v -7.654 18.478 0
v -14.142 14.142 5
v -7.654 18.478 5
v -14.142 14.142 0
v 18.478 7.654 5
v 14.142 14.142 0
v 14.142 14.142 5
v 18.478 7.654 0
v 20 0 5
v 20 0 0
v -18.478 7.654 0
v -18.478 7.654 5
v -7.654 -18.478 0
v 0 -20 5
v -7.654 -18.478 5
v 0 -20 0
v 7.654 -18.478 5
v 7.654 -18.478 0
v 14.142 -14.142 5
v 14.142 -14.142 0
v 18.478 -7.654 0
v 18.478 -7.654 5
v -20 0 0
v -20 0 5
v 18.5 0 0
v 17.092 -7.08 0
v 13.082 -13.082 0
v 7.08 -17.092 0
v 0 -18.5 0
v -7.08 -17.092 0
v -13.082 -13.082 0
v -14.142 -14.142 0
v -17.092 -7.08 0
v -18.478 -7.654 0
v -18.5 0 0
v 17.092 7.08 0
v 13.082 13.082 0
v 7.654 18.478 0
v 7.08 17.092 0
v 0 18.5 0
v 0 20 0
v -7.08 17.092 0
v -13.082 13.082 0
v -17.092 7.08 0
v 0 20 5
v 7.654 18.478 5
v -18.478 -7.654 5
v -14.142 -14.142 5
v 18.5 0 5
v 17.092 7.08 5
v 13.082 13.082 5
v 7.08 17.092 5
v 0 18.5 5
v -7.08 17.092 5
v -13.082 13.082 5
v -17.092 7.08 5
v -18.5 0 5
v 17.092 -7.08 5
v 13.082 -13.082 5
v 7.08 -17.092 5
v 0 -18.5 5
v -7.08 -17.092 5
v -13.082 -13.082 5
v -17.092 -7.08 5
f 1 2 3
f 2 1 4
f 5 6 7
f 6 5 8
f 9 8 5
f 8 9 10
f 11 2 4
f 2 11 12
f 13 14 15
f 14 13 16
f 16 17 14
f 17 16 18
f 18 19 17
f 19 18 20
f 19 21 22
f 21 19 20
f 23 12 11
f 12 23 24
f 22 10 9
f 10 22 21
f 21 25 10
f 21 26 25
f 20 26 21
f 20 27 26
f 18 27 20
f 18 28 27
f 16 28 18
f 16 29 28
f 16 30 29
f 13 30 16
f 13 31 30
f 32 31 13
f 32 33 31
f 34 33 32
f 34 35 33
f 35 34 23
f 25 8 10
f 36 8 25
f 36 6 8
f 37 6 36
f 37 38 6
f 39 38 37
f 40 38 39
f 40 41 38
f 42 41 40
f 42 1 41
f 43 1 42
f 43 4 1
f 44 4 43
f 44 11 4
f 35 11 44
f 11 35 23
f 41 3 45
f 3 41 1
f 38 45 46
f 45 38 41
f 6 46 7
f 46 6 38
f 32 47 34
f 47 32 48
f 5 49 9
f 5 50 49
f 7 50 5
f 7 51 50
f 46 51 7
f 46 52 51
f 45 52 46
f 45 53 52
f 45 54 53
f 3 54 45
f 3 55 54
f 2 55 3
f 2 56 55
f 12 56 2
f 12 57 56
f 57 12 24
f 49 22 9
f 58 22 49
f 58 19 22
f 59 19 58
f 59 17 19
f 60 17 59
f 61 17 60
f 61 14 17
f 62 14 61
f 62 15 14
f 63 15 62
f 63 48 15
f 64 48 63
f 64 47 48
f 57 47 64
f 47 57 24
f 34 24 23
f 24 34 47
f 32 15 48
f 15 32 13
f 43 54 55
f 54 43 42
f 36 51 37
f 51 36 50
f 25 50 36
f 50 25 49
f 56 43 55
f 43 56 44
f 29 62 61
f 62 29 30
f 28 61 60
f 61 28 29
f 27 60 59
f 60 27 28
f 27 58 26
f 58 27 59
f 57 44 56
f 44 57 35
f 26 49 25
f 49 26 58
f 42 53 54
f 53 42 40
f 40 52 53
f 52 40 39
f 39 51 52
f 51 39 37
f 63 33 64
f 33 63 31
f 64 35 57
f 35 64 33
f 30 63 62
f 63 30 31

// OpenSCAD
// Repeating unit parameters
radius = 20;
width = 5;
height = 5;
segments = 16;

difference() {
  // Outer circle
  cylinder(r = radius, h = height, $fn = segments);

  // Inner circle (to create the repeating element)
  translate([0,0,-1])
  cylinder(r = radius - 1.5, h = height + 1, $fn = segments);

  // Offset the center for repetition
  translate([0,0,0])
  sphere(r = 1, $fn = segments);
}
